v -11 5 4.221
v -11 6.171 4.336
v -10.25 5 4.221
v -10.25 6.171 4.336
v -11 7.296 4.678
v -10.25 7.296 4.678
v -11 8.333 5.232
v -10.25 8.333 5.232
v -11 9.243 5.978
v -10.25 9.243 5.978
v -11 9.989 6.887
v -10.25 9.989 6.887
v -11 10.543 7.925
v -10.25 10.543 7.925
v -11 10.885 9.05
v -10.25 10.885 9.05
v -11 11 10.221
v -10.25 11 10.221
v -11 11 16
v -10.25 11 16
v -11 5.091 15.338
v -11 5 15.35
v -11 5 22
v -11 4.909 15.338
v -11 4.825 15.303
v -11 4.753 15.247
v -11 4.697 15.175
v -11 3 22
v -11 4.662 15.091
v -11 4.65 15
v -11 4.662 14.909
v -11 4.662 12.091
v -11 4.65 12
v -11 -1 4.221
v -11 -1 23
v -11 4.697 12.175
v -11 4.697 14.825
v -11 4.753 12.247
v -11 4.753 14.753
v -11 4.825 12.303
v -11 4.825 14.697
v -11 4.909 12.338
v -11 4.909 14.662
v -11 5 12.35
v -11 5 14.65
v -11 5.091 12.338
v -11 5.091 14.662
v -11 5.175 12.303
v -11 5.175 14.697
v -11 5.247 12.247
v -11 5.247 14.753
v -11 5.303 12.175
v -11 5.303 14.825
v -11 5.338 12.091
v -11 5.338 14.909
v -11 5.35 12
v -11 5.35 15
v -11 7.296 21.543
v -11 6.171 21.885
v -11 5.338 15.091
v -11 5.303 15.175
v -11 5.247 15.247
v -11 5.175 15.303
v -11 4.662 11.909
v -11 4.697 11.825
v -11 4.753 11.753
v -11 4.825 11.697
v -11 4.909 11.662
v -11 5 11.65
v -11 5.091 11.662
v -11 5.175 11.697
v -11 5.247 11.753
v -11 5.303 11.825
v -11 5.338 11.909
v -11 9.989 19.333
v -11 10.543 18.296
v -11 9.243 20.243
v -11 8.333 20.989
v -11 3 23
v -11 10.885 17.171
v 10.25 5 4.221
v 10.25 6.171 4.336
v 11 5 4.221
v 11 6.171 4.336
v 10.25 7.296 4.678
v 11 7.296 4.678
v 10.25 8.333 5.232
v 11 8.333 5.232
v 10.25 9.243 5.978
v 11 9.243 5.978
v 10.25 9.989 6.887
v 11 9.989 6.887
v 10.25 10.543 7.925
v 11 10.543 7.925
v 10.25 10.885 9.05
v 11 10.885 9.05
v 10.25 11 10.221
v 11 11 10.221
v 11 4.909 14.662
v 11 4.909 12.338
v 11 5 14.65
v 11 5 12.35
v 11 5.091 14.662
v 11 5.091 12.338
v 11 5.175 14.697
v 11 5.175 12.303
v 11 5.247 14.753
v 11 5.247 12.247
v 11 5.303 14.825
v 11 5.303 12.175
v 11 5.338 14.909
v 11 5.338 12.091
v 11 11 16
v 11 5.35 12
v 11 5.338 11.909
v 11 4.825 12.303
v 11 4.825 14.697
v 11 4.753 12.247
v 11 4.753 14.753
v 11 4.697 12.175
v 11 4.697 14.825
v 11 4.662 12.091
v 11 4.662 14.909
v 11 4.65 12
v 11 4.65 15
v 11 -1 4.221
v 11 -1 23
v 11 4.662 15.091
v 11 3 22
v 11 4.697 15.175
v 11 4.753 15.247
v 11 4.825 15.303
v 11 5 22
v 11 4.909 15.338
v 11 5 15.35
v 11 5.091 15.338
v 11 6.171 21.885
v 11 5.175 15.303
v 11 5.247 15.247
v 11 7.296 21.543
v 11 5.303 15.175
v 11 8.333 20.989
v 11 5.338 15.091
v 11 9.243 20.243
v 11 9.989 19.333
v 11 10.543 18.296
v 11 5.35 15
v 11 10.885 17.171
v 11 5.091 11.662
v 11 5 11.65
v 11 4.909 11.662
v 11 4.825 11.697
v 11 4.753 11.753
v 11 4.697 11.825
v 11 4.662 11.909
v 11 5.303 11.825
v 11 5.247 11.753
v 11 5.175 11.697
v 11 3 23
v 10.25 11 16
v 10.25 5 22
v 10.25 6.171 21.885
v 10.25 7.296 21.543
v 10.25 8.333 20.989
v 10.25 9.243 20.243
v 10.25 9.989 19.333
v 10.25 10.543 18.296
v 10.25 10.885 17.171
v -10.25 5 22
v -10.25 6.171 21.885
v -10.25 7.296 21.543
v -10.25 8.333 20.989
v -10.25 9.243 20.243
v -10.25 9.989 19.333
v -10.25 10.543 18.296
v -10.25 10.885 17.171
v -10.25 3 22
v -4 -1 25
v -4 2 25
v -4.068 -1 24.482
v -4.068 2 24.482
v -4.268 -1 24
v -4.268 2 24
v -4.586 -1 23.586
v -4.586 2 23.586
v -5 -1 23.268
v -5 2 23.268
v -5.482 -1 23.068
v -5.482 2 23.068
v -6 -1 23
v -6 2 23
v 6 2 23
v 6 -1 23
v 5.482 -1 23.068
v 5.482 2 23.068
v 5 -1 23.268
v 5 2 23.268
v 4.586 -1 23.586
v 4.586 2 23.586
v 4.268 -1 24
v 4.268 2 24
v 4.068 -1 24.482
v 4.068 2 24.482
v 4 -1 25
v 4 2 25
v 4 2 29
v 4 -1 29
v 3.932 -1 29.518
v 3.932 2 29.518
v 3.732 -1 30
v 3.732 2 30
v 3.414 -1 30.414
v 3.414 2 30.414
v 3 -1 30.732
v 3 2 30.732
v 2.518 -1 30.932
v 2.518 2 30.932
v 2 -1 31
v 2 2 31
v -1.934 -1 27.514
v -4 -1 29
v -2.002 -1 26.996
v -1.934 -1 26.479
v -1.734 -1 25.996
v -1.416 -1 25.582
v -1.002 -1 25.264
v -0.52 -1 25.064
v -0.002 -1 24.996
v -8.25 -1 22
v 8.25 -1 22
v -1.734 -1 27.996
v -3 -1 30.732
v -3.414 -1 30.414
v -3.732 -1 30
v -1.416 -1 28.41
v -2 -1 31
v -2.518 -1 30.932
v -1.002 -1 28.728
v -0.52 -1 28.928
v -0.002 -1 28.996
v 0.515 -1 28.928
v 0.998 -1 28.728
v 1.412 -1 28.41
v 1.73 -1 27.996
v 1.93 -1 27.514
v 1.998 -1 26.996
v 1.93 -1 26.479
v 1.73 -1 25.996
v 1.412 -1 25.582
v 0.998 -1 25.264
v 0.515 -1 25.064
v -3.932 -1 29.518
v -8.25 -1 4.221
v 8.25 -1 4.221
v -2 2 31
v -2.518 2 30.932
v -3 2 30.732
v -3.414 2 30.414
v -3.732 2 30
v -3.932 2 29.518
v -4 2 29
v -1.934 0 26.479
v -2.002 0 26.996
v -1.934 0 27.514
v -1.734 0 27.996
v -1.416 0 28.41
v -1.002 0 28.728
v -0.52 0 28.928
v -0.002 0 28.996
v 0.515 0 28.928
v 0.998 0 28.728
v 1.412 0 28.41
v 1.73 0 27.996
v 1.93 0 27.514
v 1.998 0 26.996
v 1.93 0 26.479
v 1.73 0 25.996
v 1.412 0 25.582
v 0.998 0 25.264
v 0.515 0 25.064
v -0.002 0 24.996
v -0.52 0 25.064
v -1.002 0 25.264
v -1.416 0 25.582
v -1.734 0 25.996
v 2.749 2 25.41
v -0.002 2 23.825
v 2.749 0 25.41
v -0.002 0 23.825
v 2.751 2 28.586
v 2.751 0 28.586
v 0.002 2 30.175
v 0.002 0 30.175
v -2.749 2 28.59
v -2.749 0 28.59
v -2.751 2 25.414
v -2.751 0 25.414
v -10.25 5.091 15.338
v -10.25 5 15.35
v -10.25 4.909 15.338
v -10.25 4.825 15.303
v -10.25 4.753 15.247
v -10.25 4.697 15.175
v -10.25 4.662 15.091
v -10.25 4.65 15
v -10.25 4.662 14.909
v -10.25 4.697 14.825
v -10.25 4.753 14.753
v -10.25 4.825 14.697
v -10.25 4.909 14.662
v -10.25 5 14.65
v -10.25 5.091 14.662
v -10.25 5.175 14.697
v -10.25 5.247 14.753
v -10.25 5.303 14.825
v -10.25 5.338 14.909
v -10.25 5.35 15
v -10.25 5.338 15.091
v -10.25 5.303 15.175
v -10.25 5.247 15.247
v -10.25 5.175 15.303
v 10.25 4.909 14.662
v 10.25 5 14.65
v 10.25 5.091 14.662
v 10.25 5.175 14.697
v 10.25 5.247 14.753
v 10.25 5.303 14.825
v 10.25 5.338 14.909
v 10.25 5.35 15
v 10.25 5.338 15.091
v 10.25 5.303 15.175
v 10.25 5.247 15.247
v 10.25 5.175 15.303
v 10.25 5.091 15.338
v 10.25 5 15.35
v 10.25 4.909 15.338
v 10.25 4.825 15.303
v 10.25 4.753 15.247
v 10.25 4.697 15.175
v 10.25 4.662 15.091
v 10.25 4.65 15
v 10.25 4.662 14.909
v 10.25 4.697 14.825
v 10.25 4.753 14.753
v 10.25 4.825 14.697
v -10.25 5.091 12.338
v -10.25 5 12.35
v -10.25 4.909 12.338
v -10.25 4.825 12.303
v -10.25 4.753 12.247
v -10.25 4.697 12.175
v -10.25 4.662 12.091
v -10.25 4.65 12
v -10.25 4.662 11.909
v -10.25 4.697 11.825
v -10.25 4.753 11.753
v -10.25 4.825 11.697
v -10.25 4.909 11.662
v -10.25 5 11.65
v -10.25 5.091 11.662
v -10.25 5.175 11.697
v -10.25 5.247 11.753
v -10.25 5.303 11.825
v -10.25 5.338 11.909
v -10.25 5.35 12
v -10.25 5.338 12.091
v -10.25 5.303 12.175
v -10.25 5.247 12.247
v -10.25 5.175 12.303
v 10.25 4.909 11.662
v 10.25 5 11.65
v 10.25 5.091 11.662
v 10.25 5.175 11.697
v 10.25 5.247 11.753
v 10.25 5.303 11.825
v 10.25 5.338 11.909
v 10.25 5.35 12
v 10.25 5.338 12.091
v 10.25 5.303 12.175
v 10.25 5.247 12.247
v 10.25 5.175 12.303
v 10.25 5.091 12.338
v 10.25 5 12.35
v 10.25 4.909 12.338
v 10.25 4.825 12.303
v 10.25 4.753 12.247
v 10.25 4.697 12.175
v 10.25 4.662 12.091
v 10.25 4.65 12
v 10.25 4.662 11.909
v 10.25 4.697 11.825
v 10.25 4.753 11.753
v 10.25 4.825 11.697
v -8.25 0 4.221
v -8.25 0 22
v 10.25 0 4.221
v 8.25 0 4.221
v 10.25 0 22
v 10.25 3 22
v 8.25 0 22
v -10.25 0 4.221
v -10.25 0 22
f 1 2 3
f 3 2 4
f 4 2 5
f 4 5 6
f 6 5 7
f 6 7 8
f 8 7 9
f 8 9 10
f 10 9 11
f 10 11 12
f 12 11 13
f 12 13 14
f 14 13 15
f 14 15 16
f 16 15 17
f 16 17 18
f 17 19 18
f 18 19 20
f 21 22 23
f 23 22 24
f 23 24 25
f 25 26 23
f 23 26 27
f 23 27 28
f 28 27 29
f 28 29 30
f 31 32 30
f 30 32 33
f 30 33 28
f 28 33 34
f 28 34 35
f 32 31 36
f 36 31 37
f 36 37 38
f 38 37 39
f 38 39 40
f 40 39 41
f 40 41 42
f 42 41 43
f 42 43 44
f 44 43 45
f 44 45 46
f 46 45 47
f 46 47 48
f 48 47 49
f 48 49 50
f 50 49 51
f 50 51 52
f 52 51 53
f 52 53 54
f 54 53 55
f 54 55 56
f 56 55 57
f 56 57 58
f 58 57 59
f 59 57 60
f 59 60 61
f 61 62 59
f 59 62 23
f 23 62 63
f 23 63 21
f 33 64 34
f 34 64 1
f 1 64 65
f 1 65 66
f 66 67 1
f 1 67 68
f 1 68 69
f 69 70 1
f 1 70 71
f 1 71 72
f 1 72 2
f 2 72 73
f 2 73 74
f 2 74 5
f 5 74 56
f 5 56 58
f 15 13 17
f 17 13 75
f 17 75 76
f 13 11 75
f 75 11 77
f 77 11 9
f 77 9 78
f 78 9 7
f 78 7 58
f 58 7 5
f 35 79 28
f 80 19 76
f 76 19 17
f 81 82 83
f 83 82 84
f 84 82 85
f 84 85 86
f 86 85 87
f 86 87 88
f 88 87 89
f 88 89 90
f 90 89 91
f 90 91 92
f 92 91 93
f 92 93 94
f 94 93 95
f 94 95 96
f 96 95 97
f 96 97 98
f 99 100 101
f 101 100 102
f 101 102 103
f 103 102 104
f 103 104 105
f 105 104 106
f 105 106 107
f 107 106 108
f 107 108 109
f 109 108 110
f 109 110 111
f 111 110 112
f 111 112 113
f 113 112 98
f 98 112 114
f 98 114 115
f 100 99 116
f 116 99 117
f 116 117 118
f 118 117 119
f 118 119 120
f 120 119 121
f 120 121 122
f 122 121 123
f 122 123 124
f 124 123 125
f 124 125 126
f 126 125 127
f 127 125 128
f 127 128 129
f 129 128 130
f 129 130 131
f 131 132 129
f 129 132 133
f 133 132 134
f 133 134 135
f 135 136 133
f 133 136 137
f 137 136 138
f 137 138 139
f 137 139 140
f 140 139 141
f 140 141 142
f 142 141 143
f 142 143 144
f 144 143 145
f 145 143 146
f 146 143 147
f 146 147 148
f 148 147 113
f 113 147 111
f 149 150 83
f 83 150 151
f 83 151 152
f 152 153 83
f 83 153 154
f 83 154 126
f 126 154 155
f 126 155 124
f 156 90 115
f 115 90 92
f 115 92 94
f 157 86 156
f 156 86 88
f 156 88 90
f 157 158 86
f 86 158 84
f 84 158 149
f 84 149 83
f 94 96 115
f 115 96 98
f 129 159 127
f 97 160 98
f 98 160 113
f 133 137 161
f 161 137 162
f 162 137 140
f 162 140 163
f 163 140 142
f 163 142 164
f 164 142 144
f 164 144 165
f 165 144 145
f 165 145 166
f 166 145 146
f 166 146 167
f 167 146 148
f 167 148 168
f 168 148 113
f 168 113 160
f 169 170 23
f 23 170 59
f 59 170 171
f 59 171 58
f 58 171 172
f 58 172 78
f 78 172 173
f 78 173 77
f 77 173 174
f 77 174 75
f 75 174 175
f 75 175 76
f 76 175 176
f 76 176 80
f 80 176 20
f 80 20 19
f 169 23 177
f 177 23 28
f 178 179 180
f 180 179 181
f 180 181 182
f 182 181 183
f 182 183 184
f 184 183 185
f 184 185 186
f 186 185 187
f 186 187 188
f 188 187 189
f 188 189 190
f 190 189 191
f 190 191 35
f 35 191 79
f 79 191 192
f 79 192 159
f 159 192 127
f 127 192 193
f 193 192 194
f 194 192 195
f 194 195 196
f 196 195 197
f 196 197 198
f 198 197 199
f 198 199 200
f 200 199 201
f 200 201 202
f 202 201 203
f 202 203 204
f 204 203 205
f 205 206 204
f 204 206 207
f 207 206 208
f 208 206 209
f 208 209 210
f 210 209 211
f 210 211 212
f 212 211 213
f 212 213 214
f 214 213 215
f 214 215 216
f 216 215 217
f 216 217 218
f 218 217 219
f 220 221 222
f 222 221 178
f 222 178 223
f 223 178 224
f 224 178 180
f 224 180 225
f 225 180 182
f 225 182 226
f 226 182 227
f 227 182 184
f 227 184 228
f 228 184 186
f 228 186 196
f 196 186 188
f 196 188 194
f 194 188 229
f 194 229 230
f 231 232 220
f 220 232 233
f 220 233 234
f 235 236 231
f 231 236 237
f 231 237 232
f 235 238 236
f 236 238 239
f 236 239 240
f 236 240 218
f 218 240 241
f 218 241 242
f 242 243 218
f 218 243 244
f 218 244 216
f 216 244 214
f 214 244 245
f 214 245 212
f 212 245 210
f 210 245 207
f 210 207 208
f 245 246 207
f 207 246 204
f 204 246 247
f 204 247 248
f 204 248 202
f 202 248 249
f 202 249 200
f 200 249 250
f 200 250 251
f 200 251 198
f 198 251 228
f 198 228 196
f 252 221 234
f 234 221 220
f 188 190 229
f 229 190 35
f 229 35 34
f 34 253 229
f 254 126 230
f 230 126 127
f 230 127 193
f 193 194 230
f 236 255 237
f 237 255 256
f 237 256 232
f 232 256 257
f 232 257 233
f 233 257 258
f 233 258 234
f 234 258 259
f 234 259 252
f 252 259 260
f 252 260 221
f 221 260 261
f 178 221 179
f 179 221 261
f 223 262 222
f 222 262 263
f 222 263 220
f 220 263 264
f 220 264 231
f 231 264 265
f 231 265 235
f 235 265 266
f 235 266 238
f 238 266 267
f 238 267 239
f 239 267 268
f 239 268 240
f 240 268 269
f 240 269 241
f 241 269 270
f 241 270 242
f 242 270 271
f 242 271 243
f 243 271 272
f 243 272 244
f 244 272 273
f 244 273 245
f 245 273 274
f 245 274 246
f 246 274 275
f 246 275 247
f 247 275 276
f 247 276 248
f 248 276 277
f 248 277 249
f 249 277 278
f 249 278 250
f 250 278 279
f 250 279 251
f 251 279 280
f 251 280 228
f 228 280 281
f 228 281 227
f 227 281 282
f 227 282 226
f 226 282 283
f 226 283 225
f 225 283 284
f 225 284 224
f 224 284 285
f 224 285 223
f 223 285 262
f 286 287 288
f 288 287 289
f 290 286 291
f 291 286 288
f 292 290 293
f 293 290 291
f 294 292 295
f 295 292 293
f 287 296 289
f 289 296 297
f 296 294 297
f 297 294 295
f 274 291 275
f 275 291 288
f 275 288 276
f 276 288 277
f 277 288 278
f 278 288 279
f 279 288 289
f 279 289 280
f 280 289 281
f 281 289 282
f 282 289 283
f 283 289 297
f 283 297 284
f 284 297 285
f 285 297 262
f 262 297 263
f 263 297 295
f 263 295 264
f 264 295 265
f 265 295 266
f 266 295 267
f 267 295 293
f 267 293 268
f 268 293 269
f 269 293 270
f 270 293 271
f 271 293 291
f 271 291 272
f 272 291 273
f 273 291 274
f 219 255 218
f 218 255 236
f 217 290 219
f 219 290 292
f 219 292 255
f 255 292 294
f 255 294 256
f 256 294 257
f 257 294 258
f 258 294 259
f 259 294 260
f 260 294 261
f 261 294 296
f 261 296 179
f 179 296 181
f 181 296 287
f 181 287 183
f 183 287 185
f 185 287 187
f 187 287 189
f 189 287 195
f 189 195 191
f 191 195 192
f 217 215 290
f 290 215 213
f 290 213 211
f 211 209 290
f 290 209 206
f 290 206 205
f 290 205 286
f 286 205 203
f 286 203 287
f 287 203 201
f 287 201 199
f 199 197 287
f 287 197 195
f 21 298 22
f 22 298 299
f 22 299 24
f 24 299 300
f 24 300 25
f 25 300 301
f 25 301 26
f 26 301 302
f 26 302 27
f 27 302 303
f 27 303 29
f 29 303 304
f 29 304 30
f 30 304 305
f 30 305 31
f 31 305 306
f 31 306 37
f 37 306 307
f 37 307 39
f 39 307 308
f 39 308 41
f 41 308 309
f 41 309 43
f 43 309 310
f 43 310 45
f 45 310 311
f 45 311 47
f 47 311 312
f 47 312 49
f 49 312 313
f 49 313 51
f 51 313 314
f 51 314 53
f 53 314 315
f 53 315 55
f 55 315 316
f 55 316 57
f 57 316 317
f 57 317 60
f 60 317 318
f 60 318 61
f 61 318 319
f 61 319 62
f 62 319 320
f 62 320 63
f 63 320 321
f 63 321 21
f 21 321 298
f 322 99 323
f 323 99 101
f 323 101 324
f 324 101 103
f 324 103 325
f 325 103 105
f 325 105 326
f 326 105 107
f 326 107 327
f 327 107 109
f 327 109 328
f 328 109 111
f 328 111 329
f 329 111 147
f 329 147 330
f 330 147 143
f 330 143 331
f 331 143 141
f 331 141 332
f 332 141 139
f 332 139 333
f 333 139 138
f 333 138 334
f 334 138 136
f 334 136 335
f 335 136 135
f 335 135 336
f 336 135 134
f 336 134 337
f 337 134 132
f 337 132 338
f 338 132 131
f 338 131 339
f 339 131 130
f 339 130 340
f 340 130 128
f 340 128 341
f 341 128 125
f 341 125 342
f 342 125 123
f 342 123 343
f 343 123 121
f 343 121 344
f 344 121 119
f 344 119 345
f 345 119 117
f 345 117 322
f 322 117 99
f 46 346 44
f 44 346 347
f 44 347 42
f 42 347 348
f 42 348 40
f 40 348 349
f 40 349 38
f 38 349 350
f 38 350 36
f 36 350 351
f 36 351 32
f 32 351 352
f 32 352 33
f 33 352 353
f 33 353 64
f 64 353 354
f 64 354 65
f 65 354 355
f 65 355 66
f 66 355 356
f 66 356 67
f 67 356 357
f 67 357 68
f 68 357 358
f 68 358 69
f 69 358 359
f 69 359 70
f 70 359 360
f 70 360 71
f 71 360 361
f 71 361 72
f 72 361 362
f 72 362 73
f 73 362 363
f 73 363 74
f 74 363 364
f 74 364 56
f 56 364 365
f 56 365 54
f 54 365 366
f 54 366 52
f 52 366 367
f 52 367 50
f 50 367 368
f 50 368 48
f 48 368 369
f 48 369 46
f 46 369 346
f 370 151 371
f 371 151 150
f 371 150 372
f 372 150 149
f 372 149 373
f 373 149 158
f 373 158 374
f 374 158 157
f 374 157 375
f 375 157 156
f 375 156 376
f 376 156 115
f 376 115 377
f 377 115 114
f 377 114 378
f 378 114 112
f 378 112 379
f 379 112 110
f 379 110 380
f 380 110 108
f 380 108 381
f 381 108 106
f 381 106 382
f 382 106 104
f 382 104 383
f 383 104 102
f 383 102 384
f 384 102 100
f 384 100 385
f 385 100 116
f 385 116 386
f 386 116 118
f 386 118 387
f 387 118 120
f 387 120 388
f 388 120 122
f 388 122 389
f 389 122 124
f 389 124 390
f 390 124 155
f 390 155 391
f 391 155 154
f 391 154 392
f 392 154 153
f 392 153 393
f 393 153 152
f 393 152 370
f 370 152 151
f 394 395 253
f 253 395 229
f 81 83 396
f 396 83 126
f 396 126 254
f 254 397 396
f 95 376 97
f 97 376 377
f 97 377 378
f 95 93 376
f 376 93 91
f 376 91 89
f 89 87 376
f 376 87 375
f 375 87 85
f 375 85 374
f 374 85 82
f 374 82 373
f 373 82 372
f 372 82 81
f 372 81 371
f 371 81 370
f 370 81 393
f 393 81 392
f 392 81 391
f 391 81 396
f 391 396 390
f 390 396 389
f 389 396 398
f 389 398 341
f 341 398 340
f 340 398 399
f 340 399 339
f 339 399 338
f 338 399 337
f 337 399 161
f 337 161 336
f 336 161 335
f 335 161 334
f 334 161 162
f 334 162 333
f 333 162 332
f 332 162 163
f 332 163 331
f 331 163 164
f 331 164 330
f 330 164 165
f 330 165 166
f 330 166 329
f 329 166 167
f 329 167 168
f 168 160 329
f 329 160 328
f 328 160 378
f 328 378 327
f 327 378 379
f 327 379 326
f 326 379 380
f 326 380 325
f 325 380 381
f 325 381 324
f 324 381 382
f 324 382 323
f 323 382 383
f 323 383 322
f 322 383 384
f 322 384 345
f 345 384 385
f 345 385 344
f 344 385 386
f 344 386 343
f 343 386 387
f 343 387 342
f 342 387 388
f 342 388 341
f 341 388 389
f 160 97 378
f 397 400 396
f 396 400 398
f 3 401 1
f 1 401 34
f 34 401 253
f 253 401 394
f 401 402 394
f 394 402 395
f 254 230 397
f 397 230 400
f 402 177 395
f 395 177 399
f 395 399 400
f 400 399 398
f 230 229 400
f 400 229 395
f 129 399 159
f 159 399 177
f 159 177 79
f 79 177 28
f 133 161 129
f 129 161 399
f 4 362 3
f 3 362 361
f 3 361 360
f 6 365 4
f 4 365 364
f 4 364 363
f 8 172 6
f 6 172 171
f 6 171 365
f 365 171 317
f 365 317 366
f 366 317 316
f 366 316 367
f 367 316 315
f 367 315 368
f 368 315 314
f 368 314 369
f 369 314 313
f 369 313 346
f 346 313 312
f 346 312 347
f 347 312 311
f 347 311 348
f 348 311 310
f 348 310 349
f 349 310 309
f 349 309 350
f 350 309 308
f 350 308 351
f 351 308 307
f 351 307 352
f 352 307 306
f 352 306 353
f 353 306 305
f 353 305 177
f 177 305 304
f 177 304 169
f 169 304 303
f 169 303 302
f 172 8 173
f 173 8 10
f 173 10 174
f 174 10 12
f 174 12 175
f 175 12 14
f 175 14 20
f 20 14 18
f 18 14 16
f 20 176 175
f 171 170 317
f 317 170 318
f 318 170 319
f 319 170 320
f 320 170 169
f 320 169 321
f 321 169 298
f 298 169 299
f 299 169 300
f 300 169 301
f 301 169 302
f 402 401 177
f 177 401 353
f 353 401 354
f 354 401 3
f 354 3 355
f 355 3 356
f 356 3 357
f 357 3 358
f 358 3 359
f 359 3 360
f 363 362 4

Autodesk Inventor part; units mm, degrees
ref_plane "YZ Plane" through (0, 0, 0) normal (1, 0, 0) x (0, 1, 0)
ref_plane "XZ Plane" through (0, 0, 0) normal (0, 1, 0) x (-1, 0, 0)
ref_plane "XY Plane" through (0, 0, 0) normal (0, 0, 1) x (1, 0, 0)
sketch "Sketch1" plane through (0, 0, 0) normal (0, 1, 0) x (-1, 0, 0)
  line L0 (10.25, 22) -> (-10.25, 22)
  line L1 (-10.25, 22) -> (-10.25, -22)
  line L2 (-10.25, -22) -> (10.25, -22)
  line L3 (10.25, -22) -> (10.25, 22)
  line L4 (10.25, 22) -> (-10.25, -22) construction
  line L5 (-10.25, 22) -> (10.25, -22) construction
  line L6 (-11, 22) -> (11, 22)
  line L7 (11, 22) -> (11, -22)
  line L8 (11, -22) -> (-11, -22)
  line L9 (-11, -22) -> (-11, 22)
  line L10 (-11, 22) -> (11, -22) construction
  line L11 (11, 22) -> (-11, -22) construction
  point P0 (0, 0)
  dimension "d0" = 20.5
  dimension "d1" = 44
  dimension "d2" = 22
extrude "Extrusion1" add sketch "Sketch1" along normal blind 11 contours L6 L7 L8 L3 | L1 L8 L9 L6
sketch "Sketch2" plane through (-11, 0, 22) normal (0, 0, 1) x (1, 0, 0)
  line L0 (0.75, 0) -> (0.75, 11) projected
  line L1 (0.75, 0) -> (0.75, 11) projected
  line L2 (0, 11) -> (0.75, 11) projected
  line L3 (0, 0) -> (0, 11) projected
  line L4 (0.75, 0) -> (0, 0) projected
  line L5 (21.25, 11) -> (21.25, 0) projected
  line L6 (22, 0) -> (21.25, 0) projected
  line L7 (22, 0) -> (22, 11) projected
  line L8 (21.25, 11) -> (22, 11) projected
  line L9 (0, 0) -> (0, 11) projected
  line L10 (22, 0) -> (22, 11) projected
  line L11 (0, 0) -> (22, 0)
  line L12 (22, 0) -> (22, 3)
  line L13 (22, 3) -> (0, 3)
  line L14 (0, 3) -> (0, 0)
  point P0 (11, 0)
  dimension "d5" = 3
extrude "Extrusion2" add sketch "Sketch2" along normal blind 1 contours L4 L3 L13 L0 | L0 L13 L5 L11 | L5 L13 L7 L6
mirror "Mirror1" about plane through (0, 0, 0) normal (0, 0, 1) of "Extrusion2"
sketch "Sketch3" plane through (0, 0, 0) normal (0, -1, 0) x (1, 0, 0)
  line L0 (-11, -23) -> (11, -23) projected
  line L1 (8.25, -23) -> (11, -23)
  line L2 (11, -23) -> (11, 23)
  line L3 (11, 23) -> (8.25, 23)
  line L4 (8.25, 23) -> (8.25, -23)
  line L5 (10.25, 22) -> (10.25, -22) projected
  line L6 (-10.25, -22) -> (-10.25, 22) projected
  line L7 (-10.25, 22) -> (10.25, 22) projected
  line L8 (10.25, 22) -> (10.25, -22) projected
  line L9 (-10.25, -22) -> (10.25, -22) projected
  line L10 (-11, 23) -> (-11, -23) projected
  line L11 (-11, -23) -> (11, -23) projected
  line L12 (11, -23) -> (11, 23) projected
  line L13 (-11, 23) -> (11, 23) projected
  line L14 (-11, -23) -> (-8.25, -23)
  line L15 (-8.25, -23) -> (-8.25, 23)
  line L16 (-8.25, 23) -> (-11, 23)
  line L17 (-11, 23) -> (-11, -23)
  point P0 (0, 0)
  dimension "d9" = 2
  dimension "d10" = 2
extrude "Extrusion3" add sketch "Sketch3" along normal blind 1 contours L10 L13 L15 L7 L6 L9 L0 | L15 L9 L4 L0 | L4 L9 L5 L7 L3 L2 L0 | L9 L6 L7 L15 | L13 L4 L7 L15 | L4 L7 L5 L9
sketch "Sketch4" plane through (11, -1, 23) normal (1, 0, 0) x (0, 0, -1)
  line L0 (1, 4) -> (1, 12) projected
  line L1 (0, 4) -> (0, 0) projected
  line L2 (46, 0) -> (0, 0) projected
  line L3 (46, 0) -> (46, 4) projected
  line L4 (45, 4) -> (45, 12) projected
  line L5 (1, 12) -> (45, 12) projected
  line L6 (45.7791, 4) -> (18.7791, 4)
  line L7 (18.7791, 4) -> (18.7791, 20.689)
  line L8 (18.7791, 20.689) -> (45.7791, 20.689)
  line L9 (45.7791, 20.689) -> (45.7791, 4)
  line L10 (45, 4) -> (46, 4) projected
  line L11 (1, 4) -> (0, 4) projected
  point P0 (23, 1)
  dimension "d14" = 27
extrude "Extrusion4" cut sketch "Sketch4" against normal through all contours L7 L8 L9 L6 L4 L5 | L5 L4 L6 L7
sketch "Sketch5" plane through (11, -1, 23) normal (1, 0, 0) x (0, 0, -1)
  point P0 (23, 1)
sketch "Sketch6" plane through (11, -1, 23) normal (1, 0, 0) x (0, 0, -1)
  line L0 (46, 4) -> (18.7791, 4) projected
  line L1 (18.7791, 4) -> (18.7791, 12) projected
  line L2 (1, 12) -> (18.7791, 12) projected
  line L3 (1, 4) -> (1, 12) projected
  line L4 (0, 4) -> (0, 0) projected
  line L5 (46, 0) -> (0, 0) projected
  line L6 (46, 0) -> (46, 4) projected
  line L7 (18.7791, 8.8707) -> (57.7172, 8.8707)
  line L8 (57.7172, 8.8707) -> (57.7172, -3.4205)
  line L9 (57.7172, -3.4205) -> (18.7791, -3.4205)
  line L10 (18.7791, -3.4205) -> (18.7791, 8.8707)
  line L11 (1, 4) -> (0, 4) projected
  point P0 (23, 1)
extrude "Extrusion5" cut sketch "Sketch6" against normal through all contours L6 L5 L10 L0 | L0 L1 L7 L8 L9 L10 L5 L6
sketch "Sketch7" plane through (-11, 3, 22) normal (-1, 0, 0) x (0, 0, 1)
  line L0 (1, -4) -> (-17.7791, -4) projected
  line L1 (1, 0) -> (1, -4) projected
  point P0 (-22, -3)
  point P1 (-7, 2)
  point P2 (-10, 2)
  dimension "d19" = 6
  dimension "d20" = 6
  dimension "d21" = 8
  dimension "d22" = 3
hole "Hole1" at (-11, 5, 15) at (-11, 5, 12) direction (1, 0, 0) diameter 0.7 end through all
sketch "Sketch8" plane through (0, -1, 0) normal (0, -1, 0) x (1, 0, 0)
  line L0 (-11, 4.2209) -> (-8.25, 4.2209) projected
  line L1 (-8.25, 22) -> (-8.25, 4.2209) projected
  line L2 (-8.25, 22) -> (8.25, 22) projected
  line L3 (8.25, 4.2209) -> (8.25, 22) projected
  line L4 (8.25, 4.2209) -> (11, 4.2209) projected
  line L5 (11, 4.2209) -> (11, 23) projected
  line L6 (11, 23) -> (-11, 23) projected
  line L7 (-11, 23) -> (-11, 4.2209) projected
  line L8 (11, 23) -> (-11, 23) projected
  line L9 (4, 31) -> (-4, 31)
  line L10 (-4, 31) -> (-4, 23)
  line L11 (-4, 23) -> (4, 23)
  line L12 (4, 23) -> (4, 31)
  line L13 (4, 31) -> (-4, 23) construction
  line L14 (-4, 31) -> (4, 23) construction
  point P0 (0, 0)
  point P1 (0, 27)
  dimension "d30" = 8
  dimension "d31" = 0
  dimension "d32" = 8
extrude "Extrusion6" add sketch "Sketch8" against normal blind 3 contours L10 L9 L12 L6
sketch "Sketch9" plane through (-10.25, 3, 22) normal (0, 1, 0) x (1, 0, 0)
  line L0 (20.5, 0) -> (21.25, 0) projected
  line L1 (20.5, 0) -> (0, 0) projected
  line L2 (-0.75, 0) -> (0, 0) projected
  line L3 (-0.75, 0) -> (-0.75, -1) projected
  line L4 (21.25, -1) -> (-0.75, -1) projected
  line L5 (21.25, 0) -> (21.25, -1) projected
  line L6 (7.5011, -6.5896) -> (7.4989, -3.4141)
  line L7 (7.4989, -3.4141) -> (10.2478, -1.8246)
  line L8 (10.2478, -1.8246) -> (12.9989, -3.4104)
  line L9 (12.9989, -3.4104) -> (13.0011, -6.5859)
  line L10 (13.0011, -6.5859) -> (10.2522, -8.1754)
  line L11 (10.2522, -8.1754) -> (7.5011, -6.5896)
  line L12 (6.25, -1) -> (14.25, -1) projected
  line L13 (6.25, -1) -> (6.25, -9) projected
  line L14 (6.25, -9) -> (14.25, -9) projected
  line L15 (14.25, -9) -> (14.25, -1) projected
  point P0 (10.25, 22)
  point P1 (10.25, -5)
  dimension "d35" = 5.5
  dimension "d38" = 4
extrude "Extrusion7" cut sketch "Sketch9" against normal blind 3 contours L6 L7 L8 L9 L10 L11
sketch "Sketch10" plane through (-10.25, 0, 22) normal (0, 1, 0) x (1, 0, 0)
  line L0 (7.5011, -6.5896) -> (7.4989, -3.4141) projected
  line L1 (10.2522, -8.1754) -> (7.5011, -6.5896) projected
  line L2 (13.0011, -6.5859) -> (10.2522, -8.1754) projected
  line L3 (12.9989, -3.4104) -> (13.0011, -6.5859) projected
  line L4 (10.2478, -1.8246) -> (12.9989, -3.4104) projected
  line L5 (7.4989, -3.4141) -> (10.2478, -1.8246) projected
  point P0 (10.25, 22)
  point P1 (10.2478, -4.9963)
hole "Hole2" at (-0.0022, 0, 26.9963) direction (0, -1, 0) diameter 4 end through all
fillet "Fillet3" radius 2 2 edges at (-4, 0.5, 31) (4, 0.5, 31)
fillet "Fillet4" radius 2 2 edges at (4, 0.5, 23) (-4, 0.5, 23)
fillet "Fillet5" radius 6 4 edges at (-10.625, 11, 22) (10.625, 11, 22) (10.625, 11, 4.2209) (-10.625, 11, 4.2209)
properties part number "protoboard_harness"
